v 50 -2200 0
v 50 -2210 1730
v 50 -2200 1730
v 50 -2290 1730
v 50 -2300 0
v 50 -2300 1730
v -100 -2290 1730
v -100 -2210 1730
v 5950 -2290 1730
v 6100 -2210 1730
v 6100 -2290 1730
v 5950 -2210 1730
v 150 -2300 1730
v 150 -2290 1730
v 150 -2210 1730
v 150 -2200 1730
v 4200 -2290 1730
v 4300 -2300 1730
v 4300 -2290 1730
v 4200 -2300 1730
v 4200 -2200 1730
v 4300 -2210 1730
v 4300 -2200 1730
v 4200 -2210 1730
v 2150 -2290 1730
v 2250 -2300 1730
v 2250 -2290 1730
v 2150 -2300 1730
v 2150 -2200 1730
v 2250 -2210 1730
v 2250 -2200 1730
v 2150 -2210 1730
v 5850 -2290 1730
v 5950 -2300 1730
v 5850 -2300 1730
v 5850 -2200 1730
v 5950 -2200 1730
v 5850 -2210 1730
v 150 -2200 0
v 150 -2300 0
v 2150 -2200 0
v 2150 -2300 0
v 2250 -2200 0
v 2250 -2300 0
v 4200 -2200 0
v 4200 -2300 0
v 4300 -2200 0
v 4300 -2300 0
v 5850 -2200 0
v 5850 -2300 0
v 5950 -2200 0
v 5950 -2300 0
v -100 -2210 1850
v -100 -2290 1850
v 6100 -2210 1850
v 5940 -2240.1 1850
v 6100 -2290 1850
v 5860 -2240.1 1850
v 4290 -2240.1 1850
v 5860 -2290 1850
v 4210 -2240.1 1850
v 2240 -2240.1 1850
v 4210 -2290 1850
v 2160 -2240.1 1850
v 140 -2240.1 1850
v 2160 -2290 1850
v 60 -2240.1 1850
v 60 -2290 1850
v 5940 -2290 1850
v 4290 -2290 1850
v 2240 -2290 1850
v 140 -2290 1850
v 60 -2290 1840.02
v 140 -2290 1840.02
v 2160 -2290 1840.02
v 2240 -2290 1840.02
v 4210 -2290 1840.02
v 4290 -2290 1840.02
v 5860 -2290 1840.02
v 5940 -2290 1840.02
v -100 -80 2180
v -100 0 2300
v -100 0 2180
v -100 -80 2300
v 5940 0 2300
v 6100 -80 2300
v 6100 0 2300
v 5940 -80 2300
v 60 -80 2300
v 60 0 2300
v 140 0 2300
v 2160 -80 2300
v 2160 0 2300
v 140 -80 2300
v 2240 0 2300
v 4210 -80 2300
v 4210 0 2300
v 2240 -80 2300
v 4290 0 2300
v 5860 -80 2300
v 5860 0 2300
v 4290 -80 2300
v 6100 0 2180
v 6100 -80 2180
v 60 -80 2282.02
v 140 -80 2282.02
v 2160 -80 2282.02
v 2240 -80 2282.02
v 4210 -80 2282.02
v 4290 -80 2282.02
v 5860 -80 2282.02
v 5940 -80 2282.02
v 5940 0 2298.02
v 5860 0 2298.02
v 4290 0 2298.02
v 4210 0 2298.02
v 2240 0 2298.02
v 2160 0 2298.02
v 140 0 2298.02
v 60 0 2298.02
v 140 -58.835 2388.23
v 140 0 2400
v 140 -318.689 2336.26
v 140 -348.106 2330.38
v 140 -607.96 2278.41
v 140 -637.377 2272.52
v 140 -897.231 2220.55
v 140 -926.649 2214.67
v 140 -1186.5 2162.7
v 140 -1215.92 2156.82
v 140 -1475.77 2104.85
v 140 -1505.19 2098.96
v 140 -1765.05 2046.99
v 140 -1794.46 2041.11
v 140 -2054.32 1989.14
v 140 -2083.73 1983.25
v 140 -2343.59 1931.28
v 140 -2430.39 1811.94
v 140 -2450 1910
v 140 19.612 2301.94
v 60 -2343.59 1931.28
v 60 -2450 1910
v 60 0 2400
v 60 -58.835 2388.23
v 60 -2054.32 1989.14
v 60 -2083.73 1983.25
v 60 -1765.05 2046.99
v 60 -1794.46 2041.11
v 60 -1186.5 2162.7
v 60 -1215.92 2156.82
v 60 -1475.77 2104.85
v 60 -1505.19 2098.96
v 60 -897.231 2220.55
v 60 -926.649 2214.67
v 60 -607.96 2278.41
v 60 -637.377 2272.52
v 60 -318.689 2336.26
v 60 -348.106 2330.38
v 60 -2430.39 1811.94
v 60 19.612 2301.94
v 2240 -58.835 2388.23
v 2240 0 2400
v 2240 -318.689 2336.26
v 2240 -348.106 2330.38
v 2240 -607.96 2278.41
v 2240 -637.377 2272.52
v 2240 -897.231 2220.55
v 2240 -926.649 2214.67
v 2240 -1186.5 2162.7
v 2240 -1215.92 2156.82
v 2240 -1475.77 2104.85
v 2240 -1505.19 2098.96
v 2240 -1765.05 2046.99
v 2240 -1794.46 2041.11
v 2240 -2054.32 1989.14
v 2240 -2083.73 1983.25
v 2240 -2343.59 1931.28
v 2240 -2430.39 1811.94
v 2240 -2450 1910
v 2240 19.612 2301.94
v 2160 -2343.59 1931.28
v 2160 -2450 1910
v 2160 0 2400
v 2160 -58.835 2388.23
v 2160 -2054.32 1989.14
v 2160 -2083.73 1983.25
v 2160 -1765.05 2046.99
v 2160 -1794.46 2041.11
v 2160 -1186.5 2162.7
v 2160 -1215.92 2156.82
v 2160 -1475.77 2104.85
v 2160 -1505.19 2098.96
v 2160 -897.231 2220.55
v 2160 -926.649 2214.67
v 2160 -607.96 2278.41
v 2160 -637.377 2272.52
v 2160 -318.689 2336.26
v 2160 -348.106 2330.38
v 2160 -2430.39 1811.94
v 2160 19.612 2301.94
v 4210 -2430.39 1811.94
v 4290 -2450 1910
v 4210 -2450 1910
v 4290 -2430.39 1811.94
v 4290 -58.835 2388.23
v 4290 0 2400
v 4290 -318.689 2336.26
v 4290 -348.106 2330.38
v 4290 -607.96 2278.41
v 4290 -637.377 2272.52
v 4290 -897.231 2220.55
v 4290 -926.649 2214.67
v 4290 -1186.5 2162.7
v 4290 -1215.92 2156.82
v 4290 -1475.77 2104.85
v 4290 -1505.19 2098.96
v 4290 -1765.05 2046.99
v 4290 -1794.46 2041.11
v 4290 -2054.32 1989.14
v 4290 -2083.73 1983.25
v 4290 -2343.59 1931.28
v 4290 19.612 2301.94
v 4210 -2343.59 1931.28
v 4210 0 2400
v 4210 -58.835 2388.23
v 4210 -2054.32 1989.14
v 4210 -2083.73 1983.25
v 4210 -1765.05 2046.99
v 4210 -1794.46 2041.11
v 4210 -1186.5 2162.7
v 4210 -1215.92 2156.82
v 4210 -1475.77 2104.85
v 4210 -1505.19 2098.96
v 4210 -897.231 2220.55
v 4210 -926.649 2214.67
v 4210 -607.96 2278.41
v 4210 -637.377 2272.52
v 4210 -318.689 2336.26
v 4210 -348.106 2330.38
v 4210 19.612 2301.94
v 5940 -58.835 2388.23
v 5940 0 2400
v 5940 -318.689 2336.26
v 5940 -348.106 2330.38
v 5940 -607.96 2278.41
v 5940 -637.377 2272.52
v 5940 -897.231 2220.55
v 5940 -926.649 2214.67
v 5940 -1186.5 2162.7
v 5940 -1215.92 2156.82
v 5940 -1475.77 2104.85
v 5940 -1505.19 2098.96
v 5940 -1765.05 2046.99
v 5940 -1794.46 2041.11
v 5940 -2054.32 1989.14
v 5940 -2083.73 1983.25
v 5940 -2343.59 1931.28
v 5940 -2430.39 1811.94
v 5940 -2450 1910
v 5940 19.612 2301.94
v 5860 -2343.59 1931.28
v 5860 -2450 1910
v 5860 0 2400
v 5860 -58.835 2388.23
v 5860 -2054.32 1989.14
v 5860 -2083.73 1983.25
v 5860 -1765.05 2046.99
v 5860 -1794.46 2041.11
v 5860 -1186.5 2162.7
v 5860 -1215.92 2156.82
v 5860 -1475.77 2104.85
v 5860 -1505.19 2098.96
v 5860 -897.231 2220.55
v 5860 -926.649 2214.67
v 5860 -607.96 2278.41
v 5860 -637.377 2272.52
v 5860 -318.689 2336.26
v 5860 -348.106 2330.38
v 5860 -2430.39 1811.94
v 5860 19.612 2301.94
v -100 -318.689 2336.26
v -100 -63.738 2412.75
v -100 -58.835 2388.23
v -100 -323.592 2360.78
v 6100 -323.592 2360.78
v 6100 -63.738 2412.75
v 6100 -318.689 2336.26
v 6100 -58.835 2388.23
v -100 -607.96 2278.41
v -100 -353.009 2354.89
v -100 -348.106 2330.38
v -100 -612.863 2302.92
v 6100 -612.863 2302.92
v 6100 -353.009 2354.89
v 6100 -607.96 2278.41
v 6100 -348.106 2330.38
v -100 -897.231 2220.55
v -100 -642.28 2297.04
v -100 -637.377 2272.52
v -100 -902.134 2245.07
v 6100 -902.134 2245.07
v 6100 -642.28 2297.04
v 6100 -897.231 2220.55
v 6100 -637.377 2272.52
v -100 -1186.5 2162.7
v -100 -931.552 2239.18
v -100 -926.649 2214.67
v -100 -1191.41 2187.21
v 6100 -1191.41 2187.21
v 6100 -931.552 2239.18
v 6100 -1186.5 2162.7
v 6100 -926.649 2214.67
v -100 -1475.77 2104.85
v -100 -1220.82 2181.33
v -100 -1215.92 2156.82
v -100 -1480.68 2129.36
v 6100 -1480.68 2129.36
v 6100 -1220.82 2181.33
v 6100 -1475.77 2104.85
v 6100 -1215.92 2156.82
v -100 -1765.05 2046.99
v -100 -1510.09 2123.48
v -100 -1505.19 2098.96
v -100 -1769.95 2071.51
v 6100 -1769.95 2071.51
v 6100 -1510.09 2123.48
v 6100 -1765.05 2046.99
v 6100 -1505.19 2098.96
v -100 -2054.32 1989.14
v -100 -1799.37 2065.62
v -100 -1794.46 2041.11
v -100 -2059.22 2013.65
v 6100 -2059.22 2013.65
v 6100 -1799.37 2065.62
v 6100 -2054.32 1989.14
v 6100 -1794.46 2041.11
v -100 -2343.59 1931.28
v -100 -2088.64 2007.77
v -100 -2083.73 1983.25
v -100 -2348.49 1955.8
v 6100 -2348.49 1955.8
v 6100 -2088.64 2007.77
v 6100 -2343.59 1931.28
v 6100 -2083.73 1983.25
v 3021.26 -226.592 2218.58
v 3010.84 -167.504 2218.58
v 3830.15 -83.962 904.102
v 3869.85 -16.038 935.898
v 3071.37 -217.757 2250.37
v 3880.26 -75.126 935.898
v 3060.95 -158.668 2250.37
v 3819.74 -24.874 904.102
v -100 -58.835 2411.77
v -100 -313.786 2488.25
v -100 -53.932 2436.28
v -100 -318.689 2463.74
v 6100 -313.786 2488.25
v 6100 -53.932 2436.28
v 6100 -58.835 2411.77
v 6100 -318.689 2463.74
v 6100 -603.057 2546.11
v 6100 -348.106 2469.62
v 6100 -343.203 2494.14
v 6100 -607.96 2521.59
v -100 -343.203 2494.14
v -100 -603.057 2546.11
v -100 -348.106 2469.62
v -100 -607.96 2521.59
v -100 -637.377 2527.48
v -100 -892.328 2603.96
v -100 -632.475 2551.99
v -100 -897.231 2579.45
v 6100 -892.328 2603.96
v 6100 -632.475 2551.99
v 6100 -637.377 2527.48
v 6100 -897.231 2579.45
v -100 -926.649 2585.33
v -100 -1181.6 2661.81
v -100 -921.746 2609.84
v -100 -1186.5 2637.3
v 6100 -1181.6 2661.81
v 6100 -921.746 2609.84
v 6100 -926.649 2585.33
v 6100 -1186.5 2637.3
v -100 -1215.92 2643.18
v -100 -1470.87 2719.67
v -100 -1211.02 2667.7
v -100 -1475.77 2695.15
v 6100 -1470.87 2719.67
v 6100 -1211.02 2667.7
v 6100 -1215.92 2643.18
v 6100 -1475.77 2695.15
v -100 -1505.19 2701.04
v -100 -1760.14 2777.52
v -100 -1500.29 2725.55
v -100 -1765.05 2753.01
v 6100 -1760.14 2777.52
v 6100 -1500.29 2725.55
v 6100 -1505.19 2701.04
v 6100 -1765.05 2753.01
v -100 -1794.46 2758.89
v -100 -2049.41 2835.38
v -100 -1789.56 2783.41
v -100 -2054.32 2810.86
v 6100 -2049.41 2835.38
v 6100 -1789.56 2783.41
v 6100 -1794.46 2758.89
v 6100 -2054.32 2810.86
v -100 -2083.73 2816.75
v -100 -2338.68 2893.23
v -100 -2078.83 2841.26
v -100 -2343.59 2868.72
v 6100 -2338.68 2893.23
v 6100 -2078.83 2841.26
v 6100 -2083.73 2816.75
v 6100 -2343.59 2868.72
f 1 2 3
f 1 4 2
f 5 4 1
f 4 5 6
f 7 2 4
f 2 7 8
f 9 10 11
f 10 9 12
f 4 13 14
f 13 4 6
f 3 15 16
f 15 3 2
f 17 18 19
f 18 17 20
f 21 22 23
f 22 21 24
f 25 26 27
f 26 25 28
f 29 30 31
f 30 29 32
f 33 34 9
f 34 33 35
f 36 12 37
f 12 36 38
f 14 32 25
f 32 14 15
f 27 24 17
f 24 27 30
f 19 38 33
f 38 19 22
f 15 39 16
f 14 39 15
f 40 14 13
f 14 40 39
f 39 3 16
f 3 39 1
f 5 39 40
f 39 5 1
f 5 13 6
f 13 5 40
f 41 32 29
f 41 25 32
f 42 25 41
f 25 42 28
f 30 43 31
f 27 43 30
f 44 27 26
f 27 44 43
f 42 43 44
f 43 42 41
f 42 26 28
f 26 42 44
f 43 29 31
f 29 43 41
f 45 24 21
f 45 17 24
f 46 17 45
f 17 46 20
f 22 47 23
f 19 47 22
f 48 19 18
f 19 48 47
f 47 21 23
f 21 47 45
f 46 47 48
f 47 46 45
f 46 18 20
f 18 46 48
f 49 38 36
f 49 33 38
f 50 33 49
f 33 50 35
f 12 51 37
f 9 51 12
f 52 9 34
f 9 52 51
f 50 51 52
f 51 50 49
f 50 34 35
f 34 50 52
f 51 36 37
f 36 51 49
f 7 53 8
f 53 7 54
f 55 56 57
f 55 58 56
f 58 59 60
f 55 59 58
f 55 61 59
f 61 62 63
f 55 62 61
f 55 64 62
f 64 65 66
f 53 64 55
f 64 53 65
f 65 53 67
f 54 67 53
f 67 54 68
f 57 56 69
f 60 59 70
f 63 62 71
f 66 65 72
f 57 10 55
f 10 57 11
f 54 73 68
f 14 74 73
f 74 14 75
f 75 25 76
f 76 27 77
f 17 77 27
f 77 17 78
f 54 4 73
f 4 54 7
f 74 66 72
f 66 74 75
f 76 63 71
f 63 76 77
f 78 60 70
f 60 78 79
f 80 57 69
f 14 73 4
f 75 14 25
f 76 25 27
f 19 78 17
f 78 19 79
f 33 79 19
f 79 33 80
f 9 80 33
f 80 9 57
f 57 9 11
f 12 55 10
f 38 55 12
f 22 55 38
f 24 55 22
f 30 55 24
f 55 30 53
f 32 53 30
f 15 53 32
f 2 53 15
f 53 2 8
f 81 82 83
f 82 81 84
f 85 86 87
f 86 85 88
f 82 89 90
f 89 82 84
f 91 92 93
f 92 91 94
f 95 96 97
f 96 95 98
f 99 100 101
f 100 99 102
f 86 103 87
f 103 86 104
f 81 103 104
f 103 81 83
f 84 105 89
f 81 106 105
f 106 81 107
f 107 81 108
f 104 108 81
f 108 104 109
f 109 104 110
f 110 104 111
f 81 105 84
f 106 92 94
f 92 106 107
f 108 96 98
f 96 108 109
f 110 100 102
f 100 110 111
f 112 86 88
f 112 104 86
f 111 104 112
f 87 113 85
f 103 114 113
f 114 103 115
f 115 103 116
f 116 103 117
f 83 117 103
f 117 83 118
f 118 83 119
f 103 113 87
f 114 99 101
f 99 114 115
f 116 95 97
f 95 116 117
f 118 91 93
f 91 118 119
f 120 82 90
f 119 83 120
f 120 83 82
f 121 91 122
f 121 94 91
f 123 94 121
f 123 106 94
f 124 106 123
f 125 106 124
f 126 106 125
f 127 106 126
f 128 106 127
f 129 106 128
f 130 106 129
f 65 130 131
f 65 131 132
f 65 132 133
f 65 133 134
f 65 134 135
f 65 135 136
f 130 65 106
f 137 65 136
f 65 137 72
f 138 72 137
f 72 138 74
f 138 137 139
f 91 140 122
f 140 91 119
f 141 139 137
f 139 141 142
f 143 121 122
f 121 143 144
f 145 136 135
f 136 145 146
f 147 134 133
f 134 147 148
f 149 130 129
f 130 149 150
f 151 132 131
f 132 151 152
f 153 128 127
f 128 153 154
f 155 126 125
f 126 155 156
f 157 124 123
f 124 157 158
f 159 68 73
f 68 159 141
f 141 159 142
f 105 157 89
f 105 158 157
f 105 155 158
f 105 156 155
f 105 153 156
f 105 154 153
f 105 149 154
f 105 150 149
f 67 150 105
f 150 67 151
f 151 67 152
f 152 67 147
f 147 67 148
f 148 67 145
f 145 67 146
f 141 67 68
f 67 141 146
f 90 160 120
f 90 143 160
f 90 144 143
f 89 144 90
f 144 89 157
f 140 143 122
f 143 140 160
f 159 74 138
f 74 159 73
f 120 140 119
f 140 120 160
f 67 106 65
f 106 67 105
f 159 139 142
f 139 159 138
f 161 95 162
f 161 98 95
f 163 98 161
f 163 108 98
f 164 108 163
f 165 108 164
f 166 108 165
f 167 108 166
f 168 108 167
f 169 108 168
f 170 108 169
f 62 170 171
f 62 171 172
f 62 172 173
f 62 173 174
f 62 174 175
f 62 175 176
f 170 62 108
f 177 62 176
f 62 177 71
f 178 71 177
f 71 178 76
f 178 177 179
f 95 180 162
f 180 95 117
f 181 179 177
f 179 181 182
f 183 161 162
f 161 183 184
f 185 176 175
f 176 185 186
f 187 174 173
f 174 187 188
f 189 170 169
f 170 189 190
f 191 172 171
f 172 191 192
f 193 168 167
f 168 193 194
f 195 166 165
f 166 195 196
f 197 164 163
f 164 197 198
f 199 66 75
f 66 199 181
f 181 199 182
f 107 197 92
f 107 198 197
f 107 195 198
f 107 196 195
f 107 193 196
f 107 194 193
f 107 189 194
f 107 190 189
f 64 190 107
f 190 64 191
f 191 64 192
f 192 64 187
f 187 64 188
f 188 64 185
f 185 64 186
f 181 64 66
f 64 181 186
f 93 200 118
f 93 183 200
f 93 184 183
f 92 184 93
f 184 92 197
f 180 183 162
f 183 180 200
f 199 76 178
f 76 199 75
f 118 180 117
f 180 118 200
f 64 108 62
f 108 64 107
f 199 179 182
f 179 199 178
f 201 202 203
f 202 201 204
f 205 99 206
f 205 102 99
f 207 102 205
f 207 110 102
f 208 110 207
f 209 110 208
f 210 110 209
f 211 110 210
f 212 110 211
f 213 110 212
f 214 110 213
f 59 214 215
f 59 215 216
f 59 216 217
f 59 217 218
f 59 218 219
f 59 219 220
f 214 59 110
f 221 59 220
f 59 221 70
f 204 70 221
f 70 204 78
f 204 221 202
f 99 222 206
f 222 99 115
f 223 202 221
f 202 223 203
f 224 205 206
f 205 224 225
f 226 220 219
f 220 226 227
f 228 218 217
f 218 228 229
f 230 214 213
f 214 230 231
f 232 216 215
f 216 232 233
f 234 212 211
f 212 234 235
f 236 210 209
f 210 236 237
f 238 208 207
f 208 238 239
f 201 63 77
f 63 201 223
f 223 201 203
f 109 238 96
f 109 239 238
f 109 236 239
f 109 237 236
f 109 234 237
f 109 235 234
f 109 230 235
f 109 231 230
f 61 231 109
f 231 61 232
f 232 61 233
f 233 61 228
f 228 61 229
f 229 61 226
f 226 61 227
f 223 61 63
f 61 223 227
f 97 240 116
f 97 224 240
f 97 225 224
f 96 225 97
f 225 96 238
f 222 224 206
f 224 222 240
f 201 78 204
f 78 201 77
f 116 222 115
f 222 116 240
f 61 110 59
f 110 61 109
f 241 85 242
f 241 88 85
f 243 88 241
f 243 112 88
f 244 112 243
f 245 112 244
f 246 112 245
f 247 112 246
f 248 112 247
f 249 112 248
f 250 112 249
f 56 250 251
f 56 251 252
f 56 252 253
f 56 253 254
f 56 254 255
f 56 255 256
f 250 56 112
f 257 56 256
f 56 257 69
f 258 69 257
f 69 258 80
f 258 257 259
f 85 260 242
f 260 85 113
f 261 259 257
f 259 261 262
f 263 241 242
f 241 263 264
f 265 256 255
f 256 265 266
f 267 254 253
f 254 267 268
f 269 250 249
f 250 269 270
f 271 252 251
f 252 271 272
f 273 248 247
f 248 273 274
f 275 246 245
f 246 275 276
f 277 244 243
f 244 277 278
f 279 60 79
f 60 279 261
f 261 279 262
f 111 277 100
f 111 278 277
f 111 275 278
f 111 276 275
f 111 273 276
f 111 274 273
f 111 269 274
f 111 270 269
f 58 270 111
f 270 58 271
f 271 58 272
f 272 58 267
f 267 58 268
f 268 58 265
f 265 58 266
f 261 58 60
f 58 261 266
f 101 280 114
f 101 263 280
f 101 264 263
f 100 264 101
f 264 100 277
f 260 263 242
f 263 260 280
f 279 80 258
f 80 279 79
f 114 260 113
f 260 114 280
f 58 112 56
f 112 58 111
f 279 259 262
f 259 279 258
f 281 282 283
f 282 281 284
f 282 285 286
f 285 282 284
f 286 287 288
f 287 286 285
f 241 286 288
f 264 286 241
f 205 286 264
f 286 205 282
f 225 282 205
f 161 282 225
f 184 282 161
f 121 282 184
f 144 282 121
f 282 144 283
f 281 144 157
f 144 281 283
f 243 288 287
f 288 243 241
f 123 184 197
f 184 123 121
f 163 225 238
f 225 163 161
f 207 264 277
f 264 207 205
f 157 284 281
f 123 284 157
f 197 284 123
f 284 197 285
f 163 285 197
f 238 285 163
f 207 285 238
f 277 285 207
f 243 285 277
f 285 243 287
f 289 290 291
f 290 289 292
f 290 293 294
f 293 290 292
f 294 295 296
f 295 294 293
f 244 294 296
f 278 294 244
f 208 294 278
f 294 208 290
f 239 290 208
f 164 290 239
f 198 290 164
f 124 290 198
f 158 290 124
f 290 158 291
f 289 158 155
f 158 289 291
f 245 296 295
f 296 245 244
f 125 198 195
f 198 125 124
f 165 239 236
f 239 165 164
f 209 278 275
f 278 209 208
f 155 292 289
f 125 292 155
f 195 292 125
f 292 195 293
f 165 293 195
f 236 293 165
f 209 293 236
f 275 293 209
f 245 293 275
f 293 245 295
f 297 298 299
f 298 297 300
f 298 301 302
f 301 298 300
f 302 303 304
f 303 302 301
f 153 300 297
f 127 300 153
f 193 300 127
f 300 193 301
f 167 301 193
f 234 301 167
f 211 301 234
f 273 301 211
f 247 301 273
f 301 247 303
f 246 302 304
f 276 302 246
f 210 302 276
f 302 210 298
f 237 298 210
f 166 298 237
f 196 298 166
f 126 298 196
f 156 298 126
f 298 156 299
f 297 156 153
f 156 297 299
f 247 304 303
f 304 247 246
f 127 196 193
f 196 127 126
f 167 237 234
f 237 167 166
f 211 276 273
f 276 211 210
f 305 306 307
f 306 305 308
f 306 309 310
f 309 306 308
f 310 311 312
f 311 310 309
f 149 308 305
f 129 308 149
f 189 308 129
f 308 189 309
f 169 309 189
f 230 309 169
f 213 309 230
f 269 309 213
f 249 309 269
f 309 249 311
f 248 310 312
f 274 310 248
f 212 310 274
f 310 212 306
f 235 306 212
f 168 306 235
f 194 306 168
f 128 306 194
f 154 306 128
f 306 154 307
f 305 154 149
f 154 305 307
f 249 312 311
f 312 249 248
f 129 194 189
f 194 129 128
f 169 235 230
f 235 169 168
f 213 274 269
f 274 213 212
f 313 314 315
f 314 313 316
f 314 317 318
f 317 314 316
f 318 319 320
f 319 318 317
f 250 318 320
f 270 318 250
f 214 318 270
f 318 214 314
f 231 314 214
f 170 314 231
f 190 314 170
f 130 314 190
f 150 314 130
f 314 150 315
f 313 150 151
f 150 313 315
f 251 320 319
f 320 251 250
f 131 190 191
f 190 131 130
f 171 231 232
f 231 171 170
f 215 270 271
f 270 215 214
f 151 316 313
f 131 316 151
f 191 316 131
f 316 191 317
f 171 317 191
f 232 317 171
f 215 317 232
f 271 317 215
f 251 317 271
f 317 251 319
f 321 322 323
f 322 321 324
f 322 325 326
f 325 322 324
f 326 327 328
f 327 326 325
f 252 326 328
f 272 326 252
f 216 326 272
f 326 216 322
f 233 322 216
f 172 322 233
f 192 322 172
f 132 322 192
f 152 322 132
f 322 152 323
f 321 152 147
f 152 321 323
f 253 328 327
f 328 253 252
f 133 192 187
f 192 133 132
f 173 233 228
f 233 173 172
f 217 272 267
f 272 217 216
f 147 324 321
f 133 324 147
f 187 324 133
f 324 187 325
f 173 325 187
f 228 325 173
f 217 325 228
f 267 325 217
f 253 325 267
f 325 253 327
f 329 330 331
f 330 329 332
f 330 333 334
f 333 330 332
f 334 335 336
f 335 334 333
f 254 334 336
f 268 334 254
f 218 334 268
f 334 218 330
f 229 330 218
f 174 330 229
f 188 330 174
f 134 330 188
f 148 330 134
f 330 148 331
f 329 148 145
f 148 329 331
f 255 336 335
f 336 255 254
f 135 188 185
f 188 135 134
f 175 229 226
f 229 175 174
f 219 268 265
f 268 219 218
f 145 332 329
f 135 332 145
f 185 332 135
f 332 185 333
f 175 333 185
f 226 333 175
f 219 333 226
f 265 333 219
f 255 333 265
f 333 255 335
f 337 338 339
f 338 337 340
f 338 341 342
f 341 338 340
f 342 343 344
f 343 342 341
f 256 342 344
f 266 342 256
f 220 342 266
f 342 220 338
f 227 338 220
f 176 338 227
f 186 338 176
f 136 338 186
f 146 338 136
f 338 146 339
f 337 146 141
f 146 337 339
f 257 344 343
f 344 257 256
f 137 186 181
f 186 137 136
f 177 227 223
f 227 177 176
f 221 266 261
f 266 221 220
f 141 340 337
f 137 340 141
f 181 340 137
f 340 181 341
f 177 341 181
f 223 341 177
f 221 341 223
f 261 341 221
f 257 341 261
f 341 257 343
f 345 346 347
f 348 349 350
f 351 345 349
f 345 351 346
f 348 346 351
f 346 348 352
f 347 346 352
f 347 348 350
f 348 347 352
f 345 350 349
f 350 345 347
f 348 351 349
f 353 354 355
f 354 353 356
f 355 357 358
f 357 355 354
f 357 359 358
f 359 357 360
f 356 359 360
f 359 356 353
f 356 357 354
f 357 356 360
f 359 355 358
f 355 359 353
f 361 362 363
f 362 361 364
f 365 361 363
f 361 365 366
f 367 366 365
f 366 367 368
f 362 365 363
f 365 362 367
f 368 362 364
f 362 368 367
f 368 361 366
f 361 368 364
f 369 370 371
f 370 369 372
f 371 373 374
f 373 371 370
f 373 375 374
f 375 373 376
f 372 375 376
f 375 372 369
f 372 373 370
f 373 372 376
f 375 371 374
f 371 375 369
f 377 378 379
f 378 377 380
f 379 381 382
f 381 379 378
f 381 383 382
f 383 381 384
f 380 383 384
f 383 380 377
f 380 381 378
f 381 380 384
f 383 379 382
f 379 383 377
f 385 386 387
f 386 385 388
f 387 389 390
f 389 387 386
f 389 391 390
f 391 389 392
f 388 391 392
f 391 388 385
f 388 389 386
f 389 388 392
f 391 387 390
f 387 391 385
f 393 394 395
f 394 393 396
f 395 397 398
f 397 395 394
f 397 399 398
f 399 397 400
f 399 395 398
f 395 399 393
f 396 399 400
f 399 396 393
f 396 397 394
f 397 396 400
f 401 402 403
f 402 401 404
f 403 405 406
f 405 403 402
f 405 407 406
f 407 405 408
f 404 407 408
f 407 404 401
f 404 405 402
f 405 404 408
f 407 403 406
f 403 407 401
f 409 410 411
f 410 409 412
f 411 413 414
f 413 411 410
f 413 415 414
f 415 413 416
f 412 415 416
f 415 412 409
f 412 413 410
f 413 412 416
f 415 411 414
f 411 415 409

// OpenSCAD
// file: tea_shop_pergola_parameters.scad
// =============================================================================
// Tea Shop — GROUP 3: PERGOLA PARAMETERS
// -----------------------------------------------------------------------------
// All units: mm (1000 mm = 1.0 m), real-life scale.
// Shared global coordinate system (identical to Groups 1 & 2):
//   +X -> left -> right  (0 = left outer wall face, BUILD_W = right outer wall)
//   +Y -> front -> back  (0 = front eave wall face, BUILD_D = back wall)
//   +Z -> up             (0 = ground / plinth top datum)
//   Porch canopy extends in negative Y (forward, from Y = 0 to Y ≈ -2450 mm).
// =============================================================================

// --- SHARED GLOBAL VARIABLES (from Groups 1 & 2 — identical values) ----------
WALL_T  = 250;   // wall panel thickness                      (0.25 m)
BUILD_W = 6000;  // building width along X                    (6.00 m)
BUILD_D = 4000;  // building depth along Y                    (4.00 m)
BACK_H  = 3200;  // wall height at BACK (tall lean-to side)   (3.20 m)
FRONT_H = 2400;  // wall height at FRONT eave (short side)    (2.40 m)

// Group 1 alias names
wall_thickness    = WALL_T;
building_width    = BUILD_W;
building_depth    = BUILD_D;
back_height       = BACK_H;
front_eave_height = FRONT_H;

// Group 1 front opening & plinth references:
sill_height       = 900;   // knee-wall sill datum where brace foot rests (0.90 m)
base_front_margin = 3000;  // total front porch slab depth               (3.00 m)

// Group 2 roof slope derivation (pergola slope follows this exact angle):
ROOF_RISE  = BACK_H - FRONT_H;  // 800 mm
ROOF_RUN   = BUILD_D;            // 4000 mm
ROOF_ANGLE = atan(ROOF_RISE / ROOF_RUN); // ~11.3099°


// =============================================================================
// GROUP 3 PARAMETERS — Pergola Structure & Dimensions
// =============================================================================

// --- Post Cross-Section & Layout ---------------------------------------------
// REFERENCE NOTE: Posts are square timber (~100x100 mm), confirmed from
// wireframe (countryside-tea-shop-3d-model-9cc7378ff7.webp).
POST_SIZE = 100;  // square timber post dimension (100 mm × 100 mm) (0.10 m)

// Y coordinate of the front posts line:
// Placed at Y = -2250 mm (~75% forward across the 3.0 m porch slab),
// leaving ~750 mm open patio in front of posts as shown in reference renders.
POST_Y    = -2250;

// Array of 4 post positions [X, Y]:
// Derived from front elevation proportions:
//   - Post 1 (X=100)  : near left edge of pergola / bench area
//   - Post 2 (X=2200) : intermediate post subdividing wide 3.4m service window span
//   - Post 3 (X=4250) : positioned at mid-pier directly supporting signboard
//   - Post 4 (X=5900) : near right corner of pergola
PERGOLA_POST_POSITIONS = [
    [100,  POST_Y],  // Post 1: Front-Left
    [2200, POST_Y],  // Post 2: Front-Mid-Left
    [4250, POST_Y],  // Post 3: Front-Mid-Right (under "TEA SHOP" sign)
    [5900, POST_Y]   // Post 4: Front-Right
];

// --- Beam Dimensions ---------------------------------------------------------
MAIN_BEAM_WIDTH  = 80;   // thickness of header & ledger beams along Y (0.08 m)
MAIN_BEAM_HEIGHT = 120;  // vertical depth of header & ledger beams    (0.12 m)

// --- Cross Beams / Rafters ---------------------------------------------------
CROSS_BEAM_WIDTH  = 80;   // rafter timber thickness along X            (0.08 m)
CROSS_BEAM_HEIGHT = 100;  // rafter timber depth normal to slope        (0.10 m)

// Rafter X positions aligning directly over the 4 posts:
CROSS_BEAM_X_POSITIONS = [100, 2200, 4250, 5900];

// Sloped length of rafter from front wall (Y=0) to 200 mm past the posts:
CROSS_BEAM_SLOPE_LEN = (abs(POST_Y) + 200) / cos(ROOF_ANGLE);

// --- Pergola Slope Datum & Post Height Derivation ----------------------------
// The pergola roof slopes DOWNWARDS from the front wall eave (Y=0, Z=FRONT_H)
// toward the front posts (Y=POST_Y).
// Under the slope, the rafter top is at: FRONT_H - abs(POST_Y) * tan(ROOF_ANGLE).
// Below the rafters is the header beam (MAIN_BEAM_HEIGHT).
// Post tops touch the underside of the header beam:
PERGOLA_EAVE_Z = FRONT_H;
POST_HEIGHT    = PERGOLA_EAVE_Z - abs(POST_Y) * tan(ROOF_ANGLE) - CROSS_BEAM_HEIGHT - MAIN_BEAM_HEIGHT;

// --- Diagonal Prop Brace -----------------------------------------------------
// Single prop strut visible in window wireframe (8ffafd36e4.webp), anchoring
// near the counter sill and rising diagonally to the overhead rafter.
BRACE_WIDTH     = 60;   // diagonal brace width                       (0.06 m)
BRACE_THICKNESS = 60;   // diagonal brace thickness                   (0.06 m)
BRACE_LENGTH    = 1550; // length along diagonal strut axis           (1.55 m)
BRACE_ANGLE     = 32;   // angle of brace from vertical in degrees

// --- Slatted Roof Canopy (Planks) --------------------------------------------
// 8 flat timber planks running along X (spanning full width), arrayed along
// the slope from the front wall eave to cantilever slightly past the front posts.
SLAT_WIDTH        = 265;  // width of each individual wooden plank      (0.265 m)
SLAT_THICKNESS    = 25;   // thickness of timber plank                  (0.025 m)
SLAT_GAP          = 30;   // air gap between consecutive slats          (0.030 m)
SLAT_COUNT        = 8;    // count matching 8 planks visible in wireframe
SLAT_LENGTH       = 6200; // full span along X (covers 6000 mm + 100 mm side margins)
SLAT_START_OFFSET = 60;   // distance along slope from wall face to first slat (mm)
// file: tea_shop_pergola_modules.scad
// =============================================================================
// Tea Shop — GROUP 3: PERGOLA MODULE LIBRARY
// -----------------------------------------------------------------------------
// Defines all pergola part modules. Creates NO geometry on its own when
// included, allowing individual part_*.scad export files and the assembly
// preview file to include it cleanly.
//
// SHARED GLOBAL COORDINATE SYSTEM (identical to Groups 1 & 2):
//   +X -> left -> right  (0 = left outer wall face, BUILD_W = right outer wall)
//   +Y -> front -> back  (0 = front eave wall face, BUILD_D = back wall)
//   +Z -> up             (0 = ground / plinth top datum)
//   Porch canopy extends in negative Y (forward, from Y = 0 to Y ≈ -2450 mm).
//
// SLOPE CORRECTION:
//   Because the porch is in the negative Y direction (-Y), applying a POSITIVE
//   rotation `rotate([ROOF_ANGLE, 0, 0])` causes the coordinate `[0, -y, 0]`
//   to rotate DOWNWARD into negative Z: `Z = -y * sin(ROOF_ANGLE)`.
//   This ensures the pergola rafters and slats slope DOWNWARDS toward the front
//   posts, resting flush and continuous with the building's roof line.
//
// TODO: The hanging "TEA SHOP" sign and its mounting bracket (a later group)
//       will attach to the main header beam / roof slats near Post 3 (X=4250).
// TODO: The customer bench, stools, and water dispenser stand (later groups)
//       sit on the base slab beneath this pergola structure at Z=0.
// =============================================================================

include <tea_shop_pergola_parameters.scad>;


// =============================================================================
// MODULE 1: pergola_post()
// -----------------------------------------------------------------------------
// A single vertical square timber post modeled at the local origin:
//   Centred in X and Y ([-POST_SIZE/2 .. +POST_SIZE/2]), rising from Z=0
//   to Z=POST_HEIGHT (touching the underside of the front header beam).
// Instanced 4 times via translate() in assemble() — single reusable module.
// =============================================================================
module pergola_post() {
    translate([-POST_SIZE/2, -POST_SIZE/2, 0])
        cube([POST_SIZE, POST_SIZE, POST_HEIGHT]);
}


// =============================================================================
// MODULE 2: pergola_main_beam()
// -----------------------------------------------------------------------------
// The horizontal primary beam system:
//   1. Front header beam: spans across all 4 post tops at Y = POST_Y,
//      distributing load and directly supporting the sloped rafters.
//   2. Rear ledger beam: runs along the front wall eave (Y=0), supporting
//      the upper ends of the rafters.
// =============================================================================
module pergola_main_beam() {
    // 1. Front header beam resting directly on top of the front posts
    translate([-100, POST_Y - MAIN_BEAM_WIDTH/2, POST_HEIGHT])
        cube([BUILD_W + 200, MAIN_BEAM_WIDTH, MAIN_BEAM_HEIGHT]);

    // 2. Rear wall ledger beam anchored to the front wall below the eave
    translate([-100, -MAIN_BEAM_WIDTH, PERGOLA_EAVE_Z - MAIN_BEAM_HEIGHT - CROSS_BEAM_HEIGHT])
        cube([BUILD_W + 200, MAIN_BEAM_WIDTH, MAIN_BEAM_HEIGHT]);
}


// =============================================================================
// MODULE 3: pergola_diagonal_brace()
// -----------------------------------------------------------------------------
// A single diagonal timber brace modeled at local origin. Oriented at BRACE_ANGLE
// from vertical. Instanced at the service counter sill to support the overhead
// rafter beam, exactly as shown in the reference wireframe pass.
// =============================================================================
module pergola_diagonal_brace() {
    rotate([0, -BRACE_ANGLE, 10])
        translate([-BRACE_WIDTH/2, -BRACE_THICKNESS/2, 0])
            cube([BRACE_WIDTH, BRACE_THICKNESS, BRACE_LENGTH]);
}


// =============================================================================
// MODULE 4: pergola_cross_beam()
// -----------------------------------------------------------------------------
// A single sloped rafter running perpendicular to the building (in Y direction).
// Modeled at local origin (X=0) and sloped DOWNWARD at ROOF_ANGLE:
//   - Starts at the front wall ledger beam (Y=0)
//   - Slopes down to bear across the front header beam at POST_Y
//   - Projects 200 mm past the posts as an exposed rafter tail
// =============================================================================
module pergola_cross_beam() {
    translate([0, 0, PERGOLA_EAVE_Z])
        rotate([ROOF_ANGLE, 0, 0])
            translate([-CROSS_BEAM_WIDTH/2, -CROSS_BEAM_SLOPE_LEN, -CROSS_BEAM_HEIGHT])
                cube([CROSS_BEAM_WIDTH, CROSS_BEAM_SLOPE_LEN, CROSS_BEAM_HEIGHT]);
}


// =============================================================================
// MODULE 5: pergola_slat()
// -----------------------------------------------------------------------------
// A single flat timber canopy plank running along X (spanning the full width).
// Instanced and arrayed in assemble() via a for loop down the sloped plane,
// resting directly on top of the rafters.
// =============================================================================
module pergola_slat() {
    translate([-100, -SLAT_WIDTH, 0])
        cube([SLAT_LENGTH, SLAT_WIDTH, SLAT_THICKNESS]);
}


// =============================================================================
// ASSEMBLE MODULE — Visual verification preview (not for export)
// -----------------------------------------------------------------------------
// Press F5 in OpenSCAD to view all Group 3 pergola components together in color.
// For individual STL export, use the dedicated part_*.scad files.
// =============================================================================
module assemble() {
    // 1. Posts (4 instances positioned in shared global coordinates)
    color("SaddleBrown") {
        for (pos = PERGOLA_POST_POSITIONS) {
            translate([pos[0], pos[1], 0])
                pergola_post();
        }
    }

    // 2. Main horizontal beams (front header + rear ledger)
    color("Peru")
        pergola_main_beam();

    // 3. Cross beams / rafters (4 instances positioned over each post line)
    color("BurlyWood") {
        for (x = CROSS_BEAM_X_POSITIONS) {
            translate([x, 0, 0])
                pergola_cross_beam();
        }
    }

    // 4. Slatted canopy roof (8 flat planks arrayed along the slope)
    color("DarkGoldenrod") {
        for (i = [0 : SLAT_COUNT - 1]) {
            dist = SLAT_START_OFFSET + i * (SLAT_WIDTH + SLAT_GAP);
            translate([0, 0, PERGOLA_EAVE_Z])
                rotate([ROOF_ANGLE, 0, 0])
                    translate([0, -dist, 0])
                        pergola_slat();
        }
    }

    // 5. Diagonal prop brace (anchored at the service window counter sill)
    color("DarkSlateGray") {
        translate([3850, -50, sill_height + 20])
            pergola_diagonal_brace();
    }
}

// Default preview invocation:
assemble();
// main file
// =============================================================================
// part_pergola_slats.scad — EXPORT THE FULL ARRAYED SLAT CANOPY only.
// Press F6 (render), then export as STL.
// =============================================================================

include <tea_shop_pergola_modules.scad>;

union() {
    for (i = [0 : SLAT_COUNT - 1]) {
        dist = SLAT_START_OFFSET + i * (SLAT_WIDTH + SLAT_GAP);
        translate([0, 0, PERGOLA_EAVE_Z])
            rotate([-ROOF_ANGLE, 0, 0])
                translate([0, -dist, 0])
                    pergola_slat();
    }
}
